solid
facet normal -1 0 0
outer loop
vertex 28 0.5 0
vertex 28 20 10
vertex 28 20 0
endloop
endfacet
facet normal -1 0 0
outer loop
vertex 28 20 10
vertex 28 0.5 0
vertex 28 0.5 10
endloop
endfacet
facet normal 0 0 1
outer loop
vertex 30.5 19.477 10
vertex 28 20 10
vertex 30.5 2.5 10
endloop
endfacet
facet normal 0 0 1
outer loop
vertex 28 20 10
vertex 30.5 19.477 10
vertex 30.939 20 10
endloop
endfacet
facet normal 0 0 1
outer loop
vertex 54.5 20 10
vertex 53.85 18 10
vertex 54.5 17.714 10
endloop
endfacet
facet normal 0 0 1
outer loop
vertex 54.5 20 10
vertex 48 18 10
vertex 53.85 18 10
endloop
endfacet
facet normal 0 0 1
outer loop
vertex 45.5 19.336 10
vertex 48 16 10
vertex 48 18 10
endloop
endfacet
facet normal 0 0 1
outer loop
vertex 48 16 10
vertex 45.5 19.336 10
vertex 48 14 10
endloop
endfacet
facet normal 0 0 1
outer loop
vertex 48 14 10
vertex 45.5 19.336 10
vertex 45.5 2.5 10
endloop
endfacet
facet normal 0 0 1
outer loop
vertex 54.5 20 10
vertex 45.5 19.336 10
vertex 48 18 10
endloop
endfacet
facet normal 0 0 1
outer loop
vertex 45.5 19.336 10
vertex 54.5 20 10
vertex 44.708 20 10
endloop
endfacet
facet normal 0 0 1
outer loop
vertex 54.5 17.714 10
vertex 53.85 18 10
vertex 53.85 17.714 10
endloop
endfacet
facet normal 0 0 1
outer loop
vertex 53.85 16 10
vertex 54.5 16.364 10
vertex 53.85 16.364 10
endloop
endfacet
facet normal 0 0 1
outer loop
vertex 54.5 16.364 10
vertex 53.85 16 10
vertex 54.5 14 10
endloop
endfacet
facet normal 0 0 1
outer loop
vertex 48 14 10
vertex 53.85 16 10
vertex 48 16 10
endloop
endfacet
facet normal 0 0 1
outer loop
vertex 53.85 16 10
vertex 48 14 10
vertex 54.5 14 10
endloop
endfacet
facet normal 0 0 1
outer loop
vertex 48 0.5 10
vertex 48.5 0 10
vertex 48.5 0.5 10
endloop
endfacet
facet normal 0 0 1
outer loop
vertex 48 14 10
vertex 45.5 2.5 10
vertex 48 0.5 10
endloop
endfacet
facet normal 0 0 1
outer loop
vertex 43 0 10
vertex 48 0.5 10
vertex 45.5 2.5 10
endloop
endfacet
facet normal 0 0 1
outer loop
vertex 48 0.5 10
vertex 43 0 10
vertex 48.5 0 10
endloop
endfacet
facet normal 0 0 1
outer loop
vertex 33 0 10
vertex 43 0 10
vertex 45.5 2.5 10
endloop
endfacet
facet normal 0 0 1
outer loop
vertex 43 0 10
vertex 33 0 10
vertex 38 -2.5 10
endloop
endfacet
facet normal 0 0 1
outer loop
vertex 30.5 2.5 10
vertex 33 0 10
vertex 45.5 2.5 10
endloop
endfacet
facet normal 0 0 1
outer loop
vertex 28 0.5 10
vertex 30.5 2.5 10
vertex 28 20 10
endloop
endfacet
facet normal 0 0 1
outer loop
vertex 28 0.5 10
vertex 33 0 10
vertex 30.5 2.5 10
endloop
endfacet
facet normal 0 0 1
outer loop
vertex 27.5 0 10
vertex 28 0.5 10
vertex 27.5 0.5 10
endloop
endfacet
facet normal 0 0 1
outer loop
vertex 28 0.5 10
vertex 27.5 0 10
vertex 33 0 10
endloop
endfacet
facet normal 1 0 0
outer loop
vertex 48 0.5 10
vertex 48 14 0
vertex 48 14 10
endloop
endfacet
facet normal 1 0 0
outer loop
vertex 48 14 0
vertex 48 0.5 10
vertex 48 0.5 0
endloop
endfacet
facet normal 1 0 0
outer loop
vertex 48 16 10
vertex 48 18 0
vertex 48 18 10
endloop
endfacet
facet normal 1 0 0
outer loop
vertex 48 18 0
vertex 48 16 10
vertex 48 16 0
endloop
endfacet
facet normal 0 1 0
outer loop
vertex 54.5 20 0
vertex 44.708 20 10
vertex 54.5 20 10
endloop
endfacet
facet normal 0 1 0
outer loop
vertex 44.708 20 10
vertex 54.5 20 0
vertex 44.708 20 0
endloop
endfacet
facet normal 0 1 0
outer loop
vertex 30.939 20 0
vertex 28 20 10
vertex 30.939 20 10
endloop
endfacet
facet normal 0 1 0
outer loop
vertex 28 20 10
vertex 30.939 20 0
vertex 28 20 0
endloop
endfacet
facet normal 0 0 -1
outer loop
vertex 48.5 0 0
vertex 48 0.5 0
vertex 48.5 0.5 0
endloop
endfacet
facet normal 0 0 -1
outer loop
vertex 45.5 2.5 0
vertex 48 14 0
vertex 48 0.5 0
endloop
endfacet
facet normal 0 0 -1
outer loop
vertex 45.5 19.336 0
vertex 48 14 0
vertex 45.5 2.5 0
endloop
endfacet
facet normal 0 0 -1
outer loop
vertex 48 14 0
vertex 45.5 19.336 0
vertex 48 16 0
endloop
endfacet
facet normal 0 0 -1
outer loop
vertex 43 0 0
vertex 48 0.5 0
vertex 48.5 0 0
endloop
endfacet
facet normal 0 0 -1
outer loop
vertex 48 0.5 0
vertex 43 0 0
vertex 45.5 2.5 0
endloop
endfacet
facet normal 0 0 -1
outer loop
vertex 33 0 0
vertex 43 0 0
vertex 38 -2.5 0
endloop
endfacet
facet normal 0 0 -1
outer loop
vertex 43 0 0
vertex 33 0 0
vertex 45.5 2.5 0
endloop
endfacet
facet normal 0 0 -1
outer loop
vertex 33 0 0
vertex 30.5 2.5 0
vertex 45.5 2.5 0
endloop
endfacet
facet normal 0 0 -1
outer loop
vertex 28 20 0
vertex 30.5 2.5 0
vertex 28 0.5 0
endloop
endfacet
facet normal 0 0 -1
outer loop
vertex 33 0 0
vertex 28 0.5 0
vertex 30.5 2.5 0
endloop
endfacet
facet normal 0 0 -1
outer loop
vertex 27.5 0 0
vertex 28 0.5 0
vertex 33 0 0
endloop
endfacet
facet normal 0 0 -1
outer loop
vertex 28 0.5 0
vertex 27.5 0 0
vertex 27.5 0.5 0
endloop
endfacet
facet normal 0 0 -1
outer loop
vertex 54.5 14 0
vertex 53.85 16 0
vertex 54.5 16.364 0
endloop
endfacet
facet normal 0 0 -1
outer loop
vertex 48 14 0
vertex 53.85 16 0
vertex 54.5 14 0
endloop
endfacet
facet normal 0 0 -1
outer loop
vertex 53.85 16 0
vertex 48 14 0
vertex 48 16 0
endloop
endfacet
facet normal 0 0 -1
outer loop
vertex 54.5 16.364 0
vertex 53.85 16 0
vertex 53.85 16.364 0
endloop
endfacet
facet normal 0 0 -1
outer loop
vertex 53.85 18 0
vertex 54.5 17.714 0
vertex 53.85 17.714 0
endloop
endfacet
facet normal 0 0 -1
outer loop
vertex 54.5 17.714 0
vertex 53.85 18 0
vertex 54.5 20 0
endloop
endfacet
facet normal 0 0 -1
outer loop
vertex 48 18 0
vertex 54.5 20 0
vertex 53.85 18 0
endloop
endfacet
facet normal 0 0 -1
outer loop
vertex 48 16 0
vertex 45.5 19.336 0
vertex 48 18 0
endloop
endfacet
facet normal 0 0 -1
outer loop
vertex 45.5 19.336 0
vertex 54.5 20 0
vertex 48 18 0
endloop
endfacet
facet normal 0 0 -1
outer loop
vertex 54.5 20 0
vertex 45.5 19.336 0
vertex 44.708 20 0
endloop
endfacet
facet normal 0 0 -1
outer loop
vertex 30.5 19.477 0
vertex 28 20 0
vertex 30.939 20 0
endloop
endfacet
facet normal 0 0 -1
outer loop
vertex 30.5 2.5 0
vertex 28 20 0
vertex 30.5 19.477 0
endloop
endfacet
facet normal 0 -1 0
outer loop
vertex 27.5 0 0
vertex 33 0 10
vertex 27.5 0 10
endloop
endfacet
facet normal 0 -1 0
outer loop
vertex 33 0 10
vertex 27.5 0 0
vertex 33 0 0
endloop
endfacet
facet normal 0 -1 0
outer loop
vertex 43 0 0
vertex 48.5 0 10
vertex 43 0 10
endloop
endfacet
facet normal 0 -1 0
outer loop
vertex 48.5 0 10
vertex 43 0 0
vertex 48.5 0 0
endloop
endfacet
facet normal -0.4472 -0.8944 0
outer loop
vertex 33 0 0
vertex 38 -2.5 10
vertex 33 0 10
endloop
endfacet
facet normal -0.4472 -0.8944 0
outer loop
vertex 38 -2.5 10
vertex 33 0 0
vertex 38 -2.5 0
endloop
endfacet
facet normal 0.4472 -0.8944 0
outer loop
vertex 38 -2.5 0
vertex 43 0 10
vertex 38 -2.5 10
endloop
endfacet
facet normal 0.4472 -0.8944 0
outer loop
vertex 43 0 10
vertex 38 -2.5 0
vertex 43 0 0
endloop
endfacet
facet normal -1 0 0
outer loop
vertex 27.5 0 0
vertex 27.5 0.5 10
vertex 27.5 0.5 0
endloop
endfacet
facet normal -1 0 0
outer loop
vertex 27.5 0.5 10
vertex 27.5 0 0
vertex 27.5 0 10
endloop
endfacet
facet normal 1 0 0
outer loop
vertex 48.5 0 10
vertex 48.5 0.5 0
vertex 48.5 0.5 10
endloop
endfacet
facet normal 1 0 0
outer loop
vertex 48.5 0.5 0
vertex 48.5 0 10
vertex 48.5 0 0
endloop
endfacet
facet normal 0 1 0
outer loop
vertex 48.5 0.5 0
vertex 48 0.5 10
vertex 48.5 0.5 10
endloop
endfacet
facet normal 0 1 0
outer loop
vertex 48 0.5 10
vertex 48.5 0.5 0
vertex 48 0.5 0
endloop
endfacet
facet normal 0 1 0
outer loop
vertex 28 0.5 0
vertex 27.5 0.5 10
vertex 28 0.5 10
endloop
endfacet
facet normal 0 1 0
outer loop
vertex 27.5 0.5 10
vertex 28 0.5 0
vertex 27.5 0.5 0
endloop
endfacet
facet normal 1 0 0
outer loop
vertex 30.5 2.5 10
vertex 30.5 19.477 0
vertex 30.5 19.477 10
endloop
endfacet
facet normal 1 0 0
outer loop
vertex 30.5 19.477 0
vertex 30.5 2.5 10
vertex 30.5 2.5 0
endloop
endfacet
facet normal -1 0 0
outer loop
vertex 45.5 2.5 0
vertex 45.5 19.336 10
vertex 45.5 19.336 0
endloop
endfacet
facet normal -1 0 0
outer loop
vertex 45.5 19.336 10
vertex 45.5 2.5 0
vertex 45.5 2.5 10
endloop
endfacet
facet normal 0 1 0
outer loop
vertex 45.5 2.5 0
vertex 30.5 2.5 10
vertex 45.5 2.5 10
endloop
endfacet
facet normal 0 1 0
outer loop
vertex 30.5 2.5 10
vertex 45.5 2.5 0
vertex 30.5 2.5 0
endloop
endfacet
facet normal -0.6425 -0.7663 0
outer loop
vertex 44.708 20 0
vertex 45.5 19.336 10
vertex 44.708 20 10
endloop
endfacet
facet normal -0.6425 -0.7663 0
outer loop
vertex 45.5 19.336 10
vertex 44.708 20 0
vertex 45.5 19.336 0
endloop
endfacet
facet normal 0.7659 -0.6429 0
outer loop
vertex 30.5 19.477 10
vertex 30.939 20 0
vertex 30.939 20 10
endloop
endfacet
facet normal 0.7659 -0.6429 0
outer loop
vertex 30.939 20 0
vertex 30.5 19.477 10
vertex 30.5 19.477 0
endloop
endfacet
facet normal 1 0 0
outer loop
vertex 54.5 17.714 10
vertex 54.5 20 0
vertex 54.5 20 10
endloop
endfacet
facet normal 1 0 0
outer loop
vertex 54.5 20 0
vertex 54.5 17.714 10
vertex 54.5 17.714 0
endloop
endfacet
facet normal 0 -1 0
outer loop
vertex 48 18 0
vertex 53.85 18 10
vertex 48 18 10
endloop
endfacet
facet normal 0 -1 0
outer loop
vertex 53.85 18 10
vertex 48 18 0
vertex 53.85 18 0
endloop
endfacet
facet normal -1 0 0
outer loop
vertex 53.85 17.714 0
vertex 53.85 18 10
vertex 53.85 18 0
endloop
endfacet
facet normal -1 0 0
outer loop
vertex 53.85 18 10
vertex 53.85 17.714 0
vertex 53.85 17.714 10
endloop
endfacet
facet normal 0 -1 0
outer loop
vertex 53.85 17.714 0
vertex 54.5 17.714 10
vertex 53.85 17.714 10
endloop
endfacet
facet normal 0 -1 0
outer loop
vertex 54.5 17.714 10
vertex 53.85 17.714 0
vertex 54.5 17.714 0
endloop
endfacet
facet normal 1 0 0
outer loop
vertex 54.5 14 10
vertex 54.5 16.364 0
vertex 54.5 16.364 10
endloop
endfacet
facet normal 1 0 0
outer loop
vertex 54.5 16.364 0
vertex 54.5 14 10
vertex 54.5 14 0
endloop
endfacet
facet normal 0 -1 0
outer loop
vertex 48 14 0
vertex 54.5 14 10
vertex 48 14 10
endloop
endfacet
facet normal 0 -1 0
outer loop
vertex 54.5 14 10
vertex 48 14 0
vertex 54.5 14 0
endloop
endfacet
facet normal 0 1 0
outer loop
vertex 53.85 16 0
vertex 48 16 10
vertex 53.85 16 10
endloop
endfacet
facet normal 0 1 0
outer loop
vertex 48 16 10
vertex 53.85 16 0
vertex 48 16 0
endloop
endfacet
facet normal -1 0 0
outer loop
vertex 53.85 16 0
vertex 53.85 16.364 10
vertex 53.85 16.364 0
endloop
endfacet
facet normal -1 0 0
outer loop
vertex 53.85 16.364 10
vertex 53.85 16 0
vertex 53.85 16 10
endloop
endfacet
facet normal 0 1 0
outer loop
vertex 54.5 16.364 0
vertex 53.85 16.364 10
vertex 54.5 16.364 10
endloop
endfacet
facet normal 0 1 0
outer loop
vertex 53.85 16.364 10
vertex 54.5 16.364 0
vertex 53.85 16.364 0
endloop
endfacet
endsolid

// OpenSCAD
/* (C) Copyright 2017 by Thomas R. Koll
 * LED strip holder is a 3D model released under the Creative Commons Attribution Share Alike license
*/


w = 20;
p = 10;
t = w - 15;
q = 6.5; // how wide the strip is
f = (2.5*w)/t;
k = 2; // thickness of the wires with 1mm space
u = 7;

translate([1.4 * w, 0, 0]) union() {
    difference() {
        union() {
            cube([w, w, p]);
                    
            translate([w/2, -t/2, 0])
                scale([2, 1, 1])  rotate([0, 0, 45])
                    cube([q, q, p]);
            translate([-0.5, 0, 0])
                    cube([w + 1, t/10, p]);
        }
        // cut out to fix the wall  
        translate([t/2, t/2, -1]) {
            difference() {
                cube([w-t, w+2, p+2]);
                translate([w - t + 0.4, w - t * 0.7, 0])
                    rotate([0, 0, 50])
                        cube([t/3, t/3, p+2]);
                translate([-0.4, w - t * 0.7, 0])
                    rotate([0, 0, 50])
                        cube([t/3, t/3, p+2]);
            }
        }
    }

    // two horizontal slots
    translate([w,w/f*(f-1),0]) {
        cube([q, w/f, p]);
        translate([q/f*(f-1), -k/u, 0])
            cube([q/f, q/f, p]);
    }
    
    translate([w,w/f*(f-2) - k,0]) {
        cube([q, w/f, p]);
        translate([q/f*(f-1), w/f -k/u, 0])
            cube([q/f, q/f, p]);
    }
}
